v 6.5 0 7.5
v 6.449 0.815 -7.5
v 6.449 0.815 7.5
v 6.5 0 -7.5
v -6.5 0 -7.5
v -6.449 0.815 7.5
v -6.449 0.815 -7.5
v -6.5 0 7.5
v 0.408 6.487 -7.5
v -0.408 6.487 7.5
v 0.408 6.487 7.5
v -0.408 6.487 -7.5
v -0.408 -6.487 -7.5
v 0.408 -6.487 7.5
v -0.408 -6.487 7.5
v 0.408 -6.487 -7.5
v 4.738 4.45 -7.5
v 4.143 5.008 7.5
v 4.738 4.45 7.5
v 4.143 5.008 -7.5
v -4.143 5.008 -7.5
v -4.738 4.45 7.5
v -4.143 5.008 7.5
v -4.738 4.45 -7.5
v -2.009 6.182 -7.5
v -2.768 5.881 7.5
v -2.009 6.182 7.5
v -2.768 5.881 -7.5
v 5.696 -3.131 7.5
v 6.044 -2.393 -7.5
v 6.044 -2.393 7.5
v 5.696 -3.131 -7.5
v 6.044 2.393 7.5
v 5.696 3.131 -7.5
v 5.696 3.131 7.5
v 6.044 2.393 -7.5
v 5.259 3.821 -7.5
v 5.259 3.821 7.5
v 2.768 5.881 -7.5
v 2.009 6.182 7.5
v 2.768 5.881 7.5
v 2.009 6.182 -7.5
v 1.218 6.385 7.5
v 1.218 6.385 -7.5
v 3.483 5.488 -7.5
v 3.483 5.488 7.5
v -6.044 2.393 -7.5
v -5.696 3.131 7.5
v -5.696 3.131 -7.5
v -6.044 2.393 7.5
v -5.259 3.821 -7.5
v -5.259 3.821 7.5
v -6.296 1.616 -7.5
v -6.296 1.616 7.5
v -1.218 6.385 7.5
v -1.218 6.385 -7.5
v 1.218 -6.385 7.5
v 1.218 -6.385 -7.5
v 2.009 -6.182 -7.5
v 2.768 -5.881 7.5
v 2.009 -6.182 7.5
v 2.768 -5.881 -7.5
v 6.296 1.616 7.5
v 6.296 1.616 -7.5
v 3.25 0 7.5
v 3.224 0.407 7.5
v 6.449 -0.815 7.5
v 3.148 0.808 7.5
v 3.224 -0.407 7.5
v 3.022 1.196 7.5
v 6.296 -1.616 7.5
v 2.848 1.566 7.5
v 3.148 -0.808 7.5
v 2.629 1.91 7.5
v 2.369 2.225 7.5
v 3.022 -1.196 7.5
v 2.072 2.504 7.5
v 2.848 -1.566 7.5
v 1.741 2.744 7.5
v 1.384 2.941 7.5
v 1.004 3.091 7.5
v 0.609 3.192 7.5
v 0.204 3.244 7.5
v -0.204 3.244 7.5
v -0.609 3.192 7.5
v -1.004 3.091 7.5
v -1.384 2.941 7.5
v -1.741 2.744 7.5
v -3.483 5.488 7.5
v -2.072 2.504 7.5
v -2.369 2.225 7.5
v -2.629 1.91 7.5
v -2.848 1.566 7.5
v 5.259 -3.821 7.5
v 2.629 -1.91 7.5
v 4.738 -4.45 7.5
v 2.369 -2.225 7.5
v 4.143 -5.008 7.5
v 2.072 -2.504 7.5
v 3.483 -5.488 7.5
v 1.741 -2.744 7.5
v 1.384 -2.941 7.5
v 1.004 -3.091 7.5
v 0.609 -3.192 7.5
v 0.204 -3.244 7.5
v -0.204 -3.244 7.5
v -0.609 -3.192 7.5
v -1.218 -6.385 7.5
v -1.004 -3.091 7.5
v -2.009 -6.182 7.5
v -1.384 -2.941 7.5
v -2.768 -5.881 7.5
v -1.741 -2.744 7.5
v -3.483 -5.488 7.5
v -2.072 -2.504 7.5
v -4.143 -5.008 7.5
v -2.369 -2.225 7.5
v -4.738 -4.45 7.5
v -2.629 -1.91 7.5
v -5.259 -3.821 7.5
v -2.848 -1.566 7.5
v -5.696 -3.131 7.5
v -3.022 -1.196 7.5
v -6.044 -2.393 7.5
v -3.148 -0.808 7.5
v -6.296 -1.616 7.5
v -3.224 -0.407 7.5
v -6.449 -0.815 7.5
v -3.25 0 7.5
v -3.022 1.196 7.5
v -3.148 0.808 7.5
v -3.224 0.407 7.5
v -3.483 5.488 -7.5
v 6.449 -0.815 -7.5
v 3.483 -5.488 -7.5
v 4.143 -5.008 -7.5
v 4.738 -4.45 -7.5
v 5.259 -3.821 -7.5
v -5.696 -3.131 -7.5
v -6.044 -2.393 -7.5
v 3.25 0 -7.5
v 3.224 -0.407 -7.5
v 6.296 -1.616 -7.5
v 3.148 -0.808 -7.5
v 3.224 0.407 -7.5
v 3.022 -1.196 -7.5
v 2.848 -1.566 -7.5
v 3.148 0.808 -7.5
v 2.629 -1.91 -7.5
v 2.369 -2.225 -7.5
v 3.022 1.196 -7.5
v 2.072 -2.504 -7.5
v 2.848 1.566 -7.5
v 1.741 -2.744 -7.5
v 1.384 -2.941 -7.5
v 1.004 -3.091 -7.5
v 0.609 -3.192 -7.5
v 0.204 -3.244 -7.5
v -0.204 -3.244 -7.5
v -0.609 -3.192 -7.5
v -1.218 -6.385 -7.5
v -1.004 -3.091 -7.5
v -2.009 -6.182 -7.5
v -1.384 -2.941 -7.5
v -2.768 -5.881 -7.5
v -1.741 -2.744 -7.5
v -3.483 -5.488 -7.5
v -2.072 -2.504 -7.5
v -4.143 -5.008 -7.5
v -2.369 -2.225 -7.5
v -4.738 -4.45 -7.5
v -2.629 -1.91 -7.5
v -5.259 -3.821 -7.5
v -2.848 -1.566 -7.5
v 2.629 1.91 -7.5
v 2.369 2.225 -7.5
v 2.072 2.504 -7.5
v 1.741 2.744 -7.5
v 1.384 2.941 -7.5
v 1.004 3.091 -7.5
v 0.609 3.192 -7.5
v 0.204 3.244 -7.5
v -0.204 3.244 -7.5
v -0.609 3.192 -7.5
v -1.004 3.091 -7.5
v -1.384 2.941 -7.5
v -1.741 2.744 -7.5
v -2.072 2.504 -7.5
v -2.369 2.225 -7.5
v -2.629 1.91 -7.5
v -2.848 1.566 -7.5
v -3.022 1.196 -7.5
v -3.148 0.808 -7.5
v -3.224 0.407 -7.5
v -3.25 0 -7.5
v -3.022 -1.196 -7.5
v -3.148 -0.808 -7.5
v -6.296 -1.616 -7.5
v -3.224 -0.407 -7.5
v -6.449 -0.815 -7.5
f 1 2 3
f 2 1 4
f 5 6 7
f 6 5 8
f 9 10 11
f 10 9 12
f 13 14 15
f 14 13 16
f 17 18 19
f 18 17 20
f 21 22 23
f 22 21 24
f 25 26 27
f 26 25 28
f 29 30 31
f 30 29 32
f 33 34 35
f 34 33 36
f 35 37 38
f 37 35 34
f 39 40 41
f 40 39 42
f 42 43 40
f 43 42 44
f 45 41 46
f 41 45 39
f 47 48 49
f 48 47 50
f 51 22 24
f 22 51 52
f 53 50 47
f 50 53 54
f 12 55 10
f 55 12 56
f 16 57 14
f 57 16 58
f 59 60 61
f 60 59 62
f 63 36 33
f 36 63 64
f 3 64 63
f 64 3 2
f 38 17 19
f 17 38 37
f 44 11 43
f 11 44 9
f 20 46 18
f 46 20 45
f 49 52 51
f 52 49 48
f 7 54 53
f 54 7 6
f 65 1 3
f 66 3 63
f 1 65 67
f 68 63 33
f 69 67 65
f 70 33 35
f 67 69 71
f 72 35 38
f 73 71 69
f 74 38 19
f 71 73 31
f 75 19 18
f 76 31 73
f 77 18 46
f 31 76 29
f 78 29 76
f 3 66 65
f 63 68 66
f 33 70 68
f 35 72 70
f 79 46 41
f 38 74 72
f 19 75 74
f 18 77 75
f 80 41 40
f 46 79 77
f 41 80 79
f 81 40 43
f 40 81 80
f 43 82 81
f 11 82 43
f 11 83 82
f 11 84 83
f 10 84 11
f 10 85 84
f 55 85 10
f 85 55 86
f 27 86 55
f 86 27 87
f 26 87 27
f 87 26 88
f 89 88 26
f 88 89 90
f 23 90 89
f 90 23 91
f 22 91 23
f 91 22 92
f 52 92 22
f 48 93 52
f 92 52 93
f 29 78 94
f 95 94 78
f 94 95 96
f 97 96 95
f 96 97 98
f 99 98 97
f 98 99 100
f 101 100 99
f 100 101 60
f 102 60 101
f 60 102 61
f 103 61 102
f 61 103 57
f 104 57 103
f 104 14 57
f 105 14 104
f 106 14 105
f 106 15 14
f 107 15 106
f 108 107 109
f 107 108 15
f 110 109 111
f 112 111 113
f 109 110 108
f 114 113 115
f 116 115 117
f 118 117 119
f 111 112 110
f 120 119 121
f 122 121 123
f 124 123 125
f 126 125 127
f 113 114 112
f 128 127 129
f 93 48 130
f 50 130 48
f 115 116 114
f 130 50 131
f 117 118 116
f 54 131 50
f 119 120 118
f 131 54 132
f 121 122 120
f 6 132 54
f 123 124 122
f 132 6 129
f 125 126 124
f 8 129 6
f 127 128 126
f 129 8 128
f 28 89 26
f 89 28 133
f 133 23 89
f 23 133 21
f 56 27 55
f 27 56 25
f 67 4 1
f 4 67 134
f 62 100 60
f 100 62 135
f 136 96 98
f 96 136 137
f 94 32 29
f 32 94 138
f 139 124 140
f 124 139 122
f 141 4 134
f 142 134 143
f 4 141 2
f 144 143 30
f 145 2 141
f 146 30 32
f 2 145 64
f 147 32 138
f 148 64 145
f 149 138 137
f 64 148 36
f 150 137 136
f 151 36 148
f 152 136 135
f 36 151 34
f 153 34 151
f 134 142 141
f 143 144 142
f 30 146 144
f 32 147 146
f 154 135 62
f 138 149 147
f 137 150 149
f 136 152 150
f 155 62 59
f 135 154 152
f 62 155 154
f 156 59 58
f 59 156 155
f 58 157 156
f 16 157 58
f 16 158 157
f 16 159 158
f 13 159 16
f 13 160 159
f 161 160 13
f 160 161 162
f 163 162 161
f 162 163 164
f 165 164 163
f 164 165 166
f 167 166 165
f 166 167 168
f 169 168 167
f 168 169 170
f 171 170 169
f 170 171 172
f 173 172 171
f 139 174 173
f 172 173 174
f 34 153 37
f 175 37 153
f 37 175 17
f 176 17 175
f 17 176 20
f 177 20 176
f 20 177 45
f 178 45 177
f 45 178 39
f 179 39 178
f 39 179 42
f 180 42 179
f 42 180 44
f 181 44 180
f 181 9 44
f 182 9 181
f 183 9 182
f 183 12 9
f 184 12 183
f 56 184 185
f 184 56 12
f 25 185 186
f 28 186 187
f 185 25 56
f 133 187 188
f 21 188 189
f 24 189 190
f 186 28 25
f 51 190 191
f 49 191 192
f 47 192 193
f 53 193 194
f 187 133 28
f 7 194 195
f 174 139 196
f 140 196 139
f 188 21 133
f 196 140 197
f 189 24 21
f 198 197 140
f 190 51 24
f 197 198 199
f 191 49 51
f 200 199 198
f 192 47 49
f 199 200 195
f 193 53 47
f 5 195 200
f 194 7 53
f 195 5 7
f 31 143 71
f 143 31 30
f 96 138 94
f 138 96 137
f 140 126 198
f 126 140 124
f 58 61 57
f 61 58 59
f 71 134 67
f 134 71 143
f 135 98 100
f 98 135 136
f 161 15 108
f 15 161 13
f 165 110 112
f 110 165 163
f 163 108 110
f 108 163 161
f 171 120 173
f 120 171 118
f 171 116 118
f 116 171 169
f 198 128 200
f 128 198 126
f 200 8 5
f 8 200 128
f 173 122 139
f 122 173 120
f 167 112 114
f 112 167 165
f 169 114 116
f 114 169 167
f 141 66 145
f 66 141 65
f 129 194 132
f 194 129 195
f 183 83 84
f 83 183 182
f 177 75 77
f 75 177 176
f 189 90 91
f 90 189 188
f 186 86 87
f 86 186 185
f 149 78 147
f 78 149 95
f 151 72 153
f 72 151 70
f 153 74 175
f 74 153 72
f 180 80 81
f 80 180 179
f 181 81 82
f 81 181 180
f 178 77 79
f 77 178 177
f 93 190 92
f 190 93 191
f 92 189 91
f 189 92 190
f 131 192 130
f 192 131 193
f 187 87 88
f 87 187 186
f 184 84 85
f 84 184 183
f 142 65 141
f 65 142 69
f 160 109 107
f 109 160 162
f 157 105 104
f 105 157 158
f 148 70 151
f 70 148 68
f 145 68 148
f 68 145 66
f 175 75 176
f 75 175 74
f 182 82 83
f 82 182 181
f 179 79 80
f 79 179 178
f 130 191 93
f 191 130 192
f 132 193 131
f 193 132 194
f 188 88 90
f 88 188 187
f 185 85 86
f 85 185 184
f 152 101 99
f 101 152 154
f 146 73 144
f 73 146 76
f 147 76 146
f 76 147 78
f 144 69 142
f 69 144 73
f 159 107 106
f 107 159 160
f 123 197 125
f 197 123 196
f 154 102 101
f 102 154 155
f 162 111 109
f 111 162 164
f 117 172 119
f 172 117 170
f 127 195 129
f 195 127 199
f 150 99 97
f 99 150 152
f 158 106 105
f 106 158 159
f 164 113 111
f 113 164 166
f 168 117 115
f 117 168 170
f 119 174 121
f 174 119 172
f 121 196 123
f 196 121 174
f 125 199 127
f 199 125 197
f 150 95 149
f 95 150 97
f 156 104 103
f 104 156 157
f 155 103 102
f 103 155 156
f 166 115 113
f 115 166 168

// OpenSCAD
$fn = 50;


difference() {
	union() {
		translate(v = [0, 0, -7.5000000000]) {
			cylinder(h = 15, r = 6.5000000000);
		}
	}
	union() {
		translate(v = [0, 0, -100.0000000000]) {
			cylinder(h = 200, r = 3.2500000000);
		}
	}
}
